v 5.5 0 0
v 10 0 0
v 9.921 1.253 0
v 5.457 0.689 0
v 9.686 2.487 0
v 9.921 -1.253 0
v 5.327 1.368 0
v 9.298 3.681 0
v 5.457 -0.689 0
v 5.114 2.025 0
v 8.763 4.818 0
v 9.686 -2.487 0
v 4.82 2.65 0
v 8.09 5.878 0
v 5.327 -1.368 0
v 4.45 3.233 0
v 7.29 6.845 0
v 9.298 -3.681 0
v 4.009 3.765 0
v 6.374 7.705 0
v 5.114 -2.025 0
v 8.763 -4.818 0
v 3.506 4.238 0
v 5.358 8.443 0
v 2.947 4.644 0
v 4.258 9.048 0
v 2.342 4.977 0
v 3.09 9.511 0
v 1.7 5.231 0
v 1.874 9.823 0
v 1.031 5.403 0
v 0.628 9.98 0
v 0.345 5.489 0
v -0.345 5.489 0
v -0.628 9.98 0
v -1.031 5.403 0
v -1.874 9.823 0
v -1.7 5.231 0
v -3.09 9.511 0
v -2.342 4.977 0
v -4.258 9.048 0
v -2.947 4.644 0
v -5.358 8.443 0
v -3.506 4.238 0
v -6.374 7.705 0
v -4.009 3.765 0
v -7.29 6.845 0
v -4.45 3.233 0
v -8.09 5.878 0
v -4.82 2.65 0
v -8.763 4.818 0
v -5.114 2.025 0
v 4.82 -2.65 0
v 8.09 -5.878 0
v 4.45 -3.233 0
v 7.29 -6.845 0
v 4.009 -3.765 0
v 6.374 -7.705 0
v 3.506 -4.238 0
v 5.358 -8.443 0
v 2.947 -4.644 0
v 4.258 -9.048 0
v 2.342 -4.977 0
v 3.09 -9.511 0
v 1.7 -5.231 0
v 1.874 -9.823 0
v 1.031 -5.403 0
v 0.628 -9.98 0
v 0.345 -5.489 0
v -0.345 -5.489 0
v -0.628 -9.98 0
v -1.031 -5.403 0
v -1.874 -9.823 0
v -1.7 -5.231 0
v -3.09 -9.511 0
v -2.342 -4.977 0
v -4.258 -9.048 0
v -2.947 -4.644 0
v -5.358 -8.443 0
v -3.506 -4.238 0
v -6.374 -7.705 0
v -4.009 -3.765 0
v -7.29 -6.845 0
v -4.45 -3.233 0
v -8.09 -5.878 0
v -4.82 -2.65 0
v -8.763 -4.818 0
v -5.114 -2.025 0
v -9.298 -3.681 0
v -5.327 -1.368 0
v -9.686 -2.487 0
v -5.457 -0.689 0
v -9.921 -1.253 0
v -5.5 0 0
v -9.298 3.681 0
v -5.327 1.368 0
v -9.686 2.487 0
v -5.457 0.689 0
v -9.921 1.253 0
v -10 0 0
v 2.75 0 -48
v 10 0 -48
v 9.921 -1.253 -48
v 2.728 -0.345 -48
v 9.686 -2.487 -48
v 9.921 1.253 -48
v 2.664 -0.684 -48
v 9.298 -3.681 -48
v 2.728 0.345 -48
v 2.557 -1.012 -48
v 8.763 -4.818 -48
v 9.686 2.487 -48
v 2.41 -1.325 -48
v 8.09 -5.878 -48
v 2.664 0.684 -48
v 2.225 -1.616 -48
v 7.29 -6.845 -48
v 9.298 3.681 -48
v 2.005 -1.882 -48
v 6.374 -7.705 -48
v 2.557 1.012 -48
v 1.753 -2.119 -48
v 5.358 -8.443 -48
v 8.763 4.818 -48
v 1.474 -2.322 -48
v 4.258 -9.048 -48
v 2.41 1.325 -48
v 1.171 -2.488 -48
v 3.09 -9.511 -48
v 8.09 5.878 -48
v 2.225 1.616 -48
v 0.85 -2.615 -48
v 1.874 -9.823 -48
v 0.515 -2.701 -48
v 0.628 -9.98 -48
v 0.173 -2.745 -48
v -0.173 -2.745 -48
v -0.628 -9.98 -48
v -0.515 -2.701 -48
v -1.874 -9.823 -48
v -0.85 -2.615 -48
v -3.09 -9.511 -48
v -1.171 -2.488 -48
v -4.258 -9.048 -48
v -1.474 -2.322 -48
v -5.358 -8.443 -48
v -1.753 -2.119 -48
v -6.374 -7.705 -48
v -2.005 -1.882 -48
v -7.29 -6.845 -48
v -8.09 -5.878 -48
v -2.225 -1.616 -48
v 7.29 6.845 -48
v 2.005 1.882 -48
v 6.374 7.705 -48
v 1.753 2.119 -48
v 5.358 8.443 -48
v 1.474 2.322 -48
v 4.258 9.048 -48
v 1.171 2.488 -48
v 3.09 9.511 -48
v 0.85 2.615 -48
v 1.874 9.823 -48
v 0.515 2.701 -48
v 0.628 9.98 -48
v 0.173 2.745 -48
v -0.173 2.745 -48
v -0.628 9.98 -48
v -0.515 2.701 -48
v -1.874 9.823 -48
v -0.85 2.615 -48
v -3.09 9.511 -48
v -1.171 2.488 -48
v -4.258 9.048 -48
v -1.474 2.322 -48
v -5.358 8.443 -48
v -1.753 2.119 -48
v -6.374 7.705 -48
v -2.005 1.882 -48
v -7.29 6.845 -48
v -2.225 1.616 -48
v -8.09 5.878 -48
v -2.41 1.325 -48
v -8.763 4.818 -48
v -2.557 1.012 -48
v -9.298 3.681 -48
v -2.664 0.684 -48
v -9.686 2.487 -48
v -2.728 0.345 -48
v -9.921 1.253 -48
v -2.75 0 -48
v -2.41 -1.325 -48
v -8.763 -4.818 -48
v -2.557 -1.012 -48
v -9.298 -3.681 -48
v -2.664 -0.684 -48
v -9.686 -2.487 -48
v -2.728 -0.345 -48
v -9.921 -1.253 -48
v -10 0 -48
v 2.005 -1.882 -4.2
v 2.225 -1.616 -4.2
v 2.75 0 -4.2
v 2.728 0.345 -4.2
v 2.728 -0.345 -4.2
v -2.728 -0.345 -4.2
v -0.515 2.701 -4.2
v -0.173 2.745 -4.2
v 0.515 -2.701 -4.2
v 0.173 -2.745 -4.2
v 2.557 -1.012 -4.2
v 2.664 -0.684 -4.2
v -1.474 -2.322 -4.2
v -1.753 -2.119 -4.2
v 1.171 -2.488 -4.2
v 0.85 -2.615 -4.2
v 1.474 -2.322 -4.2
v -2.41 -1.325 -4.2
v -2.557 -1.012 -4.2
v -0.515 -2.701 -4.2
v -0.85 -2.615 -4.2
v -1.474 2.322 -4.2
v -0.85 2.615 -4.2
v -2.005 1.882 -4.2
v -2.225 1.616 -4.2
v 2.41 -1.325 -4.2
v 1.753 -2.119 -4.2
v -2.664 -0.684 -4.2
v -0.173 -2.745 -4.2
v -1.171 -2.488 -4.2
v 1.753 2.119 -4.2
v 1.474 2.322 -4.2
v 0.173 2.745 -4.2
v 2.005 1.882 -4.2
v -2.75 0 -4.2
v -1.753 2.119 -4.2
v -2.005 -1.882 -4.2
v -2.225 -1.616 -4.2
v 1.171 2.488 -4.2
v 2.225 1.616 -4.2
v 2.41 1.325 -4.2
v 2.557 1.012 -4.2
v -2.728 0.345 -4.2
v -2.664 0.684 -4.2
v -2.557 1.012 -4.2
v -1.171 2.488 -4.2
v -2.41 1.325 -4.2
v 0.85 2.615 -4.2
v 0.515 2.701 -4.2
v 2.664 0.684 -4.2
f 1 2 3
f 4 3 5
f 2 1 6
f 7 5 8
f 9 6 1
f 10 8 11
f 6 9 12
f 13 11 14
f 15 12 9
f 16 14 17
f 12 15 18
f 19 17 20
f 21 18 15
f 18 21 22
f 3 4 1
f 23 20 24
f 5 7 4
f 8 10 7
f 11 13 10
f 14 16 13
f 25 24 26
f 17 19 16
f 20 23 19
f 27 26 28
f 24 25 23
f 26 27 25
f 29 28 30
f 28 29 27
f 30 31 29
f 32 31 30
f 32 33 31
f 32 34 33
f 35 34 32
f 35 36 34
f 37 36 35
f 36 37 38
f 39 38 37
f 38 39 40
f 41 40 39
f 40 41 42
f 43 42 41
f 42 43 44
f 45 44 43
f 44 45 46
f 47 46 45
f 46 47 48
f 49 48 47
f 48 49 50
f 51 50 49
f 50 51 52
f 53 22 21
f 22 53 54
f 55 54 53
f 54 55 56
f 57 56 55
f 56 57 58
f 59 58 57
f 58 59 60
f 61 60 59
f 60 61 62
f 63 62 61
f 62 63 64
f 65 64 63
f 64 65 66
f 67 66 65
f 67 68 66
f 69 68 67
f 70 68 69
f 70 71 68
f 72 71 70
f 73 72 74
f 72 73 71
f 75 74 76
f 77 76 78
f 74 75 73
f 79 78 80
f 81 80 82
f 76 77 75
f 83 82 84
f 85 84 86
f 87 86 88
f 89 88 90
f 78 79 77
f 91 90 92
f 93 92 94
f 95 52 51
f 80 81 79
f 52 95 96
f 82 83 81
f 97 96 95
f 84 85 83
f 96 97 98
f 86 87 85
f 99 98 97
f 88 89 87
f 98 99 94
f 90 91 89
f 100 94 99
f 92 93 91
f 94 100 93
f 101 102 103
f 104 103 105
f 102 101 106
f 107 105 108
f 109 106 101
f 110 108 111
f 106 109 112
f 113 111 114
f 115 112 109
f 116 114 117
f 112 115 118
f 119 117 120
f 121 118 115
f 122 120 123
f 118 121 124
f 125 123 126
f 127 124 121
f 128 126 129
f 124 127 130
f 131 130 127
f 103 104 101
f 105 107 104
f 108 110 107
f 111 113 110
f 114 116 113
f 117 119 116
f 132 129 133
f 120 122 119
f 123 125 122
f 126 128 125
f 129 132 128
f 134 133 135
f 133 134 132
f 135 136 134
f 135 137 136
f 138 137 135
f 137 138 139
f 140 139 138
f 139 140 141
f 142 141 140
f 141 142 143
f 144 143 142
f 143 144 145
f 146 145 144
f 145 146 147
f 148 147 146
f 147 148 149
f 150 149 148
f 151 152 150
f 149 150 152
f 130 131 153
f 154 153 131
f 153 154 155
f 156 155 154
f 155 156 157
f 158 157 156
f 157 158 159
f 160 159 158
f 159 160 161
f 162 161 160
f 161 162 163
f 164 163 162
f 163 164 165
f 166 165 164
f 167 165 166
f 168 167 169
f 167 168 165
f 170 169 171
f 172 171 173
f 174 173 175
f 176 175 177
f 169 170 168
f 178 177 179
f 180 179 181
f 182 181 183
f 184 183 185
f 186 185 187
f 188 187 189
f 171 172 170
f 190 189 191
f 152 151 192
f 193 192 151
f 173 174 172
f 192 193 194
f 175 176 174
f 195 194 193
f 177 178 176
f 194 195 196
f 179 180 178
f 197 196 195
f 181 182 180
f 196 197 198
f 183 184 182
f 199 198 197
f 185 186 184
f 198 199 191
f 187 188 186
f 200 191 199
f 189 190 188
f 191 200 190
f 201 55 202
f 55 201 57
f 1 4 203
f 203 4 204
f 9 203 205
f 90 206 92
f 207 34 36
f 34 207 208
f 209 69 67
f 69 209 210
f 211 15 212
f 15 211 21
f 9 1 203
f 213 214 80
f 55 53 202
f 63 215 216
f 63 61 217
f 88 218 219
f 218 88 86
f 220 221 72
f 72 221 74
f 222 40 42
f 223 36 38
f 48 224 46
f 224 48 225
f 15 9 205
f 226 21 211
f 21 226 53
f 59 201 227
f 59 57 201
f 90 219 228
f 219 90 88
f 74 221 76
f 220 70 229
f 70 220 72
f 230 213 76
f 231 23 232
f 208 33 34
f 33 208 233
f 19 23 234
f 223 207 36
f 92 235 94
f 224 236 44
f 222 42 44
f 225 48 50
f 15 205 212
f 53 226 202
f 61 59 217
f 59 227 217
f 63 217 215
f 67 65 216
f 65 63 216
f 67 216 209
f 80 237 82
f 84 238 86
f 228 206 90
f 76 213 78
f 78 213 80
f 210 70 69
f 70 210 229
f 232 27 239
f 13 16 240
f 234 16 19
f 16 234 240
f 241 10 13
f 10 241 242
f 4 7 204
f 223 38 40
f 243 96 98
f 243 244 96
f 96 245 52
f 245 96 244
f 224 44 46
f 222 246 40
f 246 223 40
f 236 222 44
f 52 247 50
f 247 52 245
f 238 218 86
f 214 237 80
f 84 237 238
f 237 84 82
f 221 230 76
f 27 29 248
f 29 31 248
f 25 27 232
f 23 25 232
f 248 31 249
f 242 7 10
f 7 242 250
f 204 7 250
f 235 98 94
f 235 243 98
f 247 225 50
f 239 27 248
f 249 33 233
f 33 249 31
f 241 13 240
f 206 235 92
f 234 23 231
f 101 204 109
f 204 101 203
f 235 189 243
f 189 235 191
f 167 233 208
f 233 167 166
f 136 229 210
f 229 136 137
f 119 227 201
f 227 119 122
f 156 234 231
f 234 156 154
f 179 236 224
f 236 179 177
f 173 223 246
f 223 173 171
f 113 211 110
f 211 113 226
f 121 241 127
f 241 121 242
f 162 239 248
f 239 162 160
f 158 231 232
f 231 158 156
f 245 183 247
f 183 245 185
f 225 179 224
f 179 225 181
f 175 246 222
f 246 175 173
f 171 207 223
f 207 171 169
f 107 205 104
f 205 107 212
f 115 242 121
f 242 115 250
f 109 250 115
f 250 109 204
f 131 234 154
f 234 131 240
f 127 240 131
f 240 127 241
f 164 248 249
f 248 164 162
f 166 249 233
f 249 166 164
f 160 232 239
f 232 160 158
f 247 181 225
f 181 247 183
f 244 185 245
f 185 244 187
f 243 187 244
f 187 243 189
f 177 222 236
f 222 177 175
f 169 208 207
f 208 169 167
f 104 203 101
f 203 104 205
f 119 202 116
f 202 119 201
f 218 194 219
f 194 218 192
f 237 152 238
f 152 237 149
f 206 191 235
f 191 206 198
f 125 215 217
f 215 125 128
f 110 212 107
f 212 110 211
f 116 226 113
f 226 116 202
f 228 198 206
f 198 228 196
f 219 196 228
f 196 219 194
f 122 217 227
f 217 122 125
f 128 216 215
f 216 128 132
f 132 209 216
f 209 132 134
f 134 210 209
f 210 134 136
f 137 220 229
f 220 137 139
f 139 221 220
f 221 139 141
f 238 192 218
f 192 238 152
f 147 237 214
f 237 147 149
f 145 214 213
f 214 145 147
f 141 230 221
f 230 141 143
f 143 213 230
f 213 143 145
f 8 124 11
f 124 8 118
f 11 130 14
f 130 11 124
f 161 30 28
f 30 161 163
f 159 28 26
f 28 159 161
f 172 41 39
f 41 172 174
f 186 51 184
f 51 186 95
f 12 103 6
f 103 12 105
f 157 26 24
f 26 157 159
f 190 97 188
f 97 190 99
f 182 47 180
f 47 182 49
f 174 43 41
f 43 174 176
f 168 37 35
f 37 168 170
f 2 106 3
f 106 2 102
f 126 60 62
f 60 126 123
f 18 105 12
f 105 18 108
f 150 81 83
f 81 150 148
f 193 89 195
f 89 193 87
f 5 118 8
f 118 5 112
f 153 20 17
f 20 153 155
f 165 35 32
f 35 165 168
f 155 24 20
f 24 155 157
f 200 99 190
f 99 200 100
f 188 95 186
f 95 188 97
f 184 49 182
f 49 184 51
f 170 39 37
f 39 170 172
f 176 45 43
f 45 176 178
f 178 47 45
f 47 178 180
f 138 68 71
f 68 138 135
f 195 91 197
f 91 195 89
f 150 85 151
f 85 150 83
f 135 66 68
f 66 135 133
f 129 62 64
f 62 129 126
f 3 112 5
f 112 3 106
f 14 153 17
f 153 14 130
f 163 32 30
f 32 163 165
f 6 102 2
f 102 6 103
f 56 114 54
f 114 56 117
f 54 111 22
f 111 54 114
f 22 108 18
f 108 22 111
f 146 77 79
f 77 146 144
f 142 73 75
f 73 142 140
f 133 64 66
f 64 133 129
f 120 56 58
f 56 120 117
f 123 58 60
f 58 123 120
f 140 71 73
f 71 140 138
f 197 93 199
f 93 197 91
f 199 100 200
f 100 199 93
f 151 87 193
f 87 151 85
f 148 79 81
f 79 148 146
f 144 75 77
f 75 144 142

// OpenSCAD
$fn = 50;


difference() {
	union() {
		translate(v = [0, 0, -48.0000000000]) {
			cylinder(h = 48, r = 10.0000000000);
		}
		cylinder(h = 0, r = 20.0000000000);
	}
	union() {
		translate(v = [0, 0, 0]) {
			rotate(a = [0, 0, 0]) {
				difference() {
					union() {
						#translate(v = [0, 0, -48.0000000000]) {
							cylinder(h = 48, r = 2.2500000000);
						}
						#translate(v = [0, 0, -4.2000000000]) {
							cylinder(h = 4.2000000000, r1 = 2.7500000000, r2 = 5.5000000000);
						}
						#translate(v = [0, 0, -48.0000000000]) {
							cylinder(h = 48, r = 2.7500000000);
						}
						#translate(v = [0, 0, -48.0000000000]) {
							cylinder(h = 48, r = 2.2500000000);
						}
					}
					union();
				}
			}
		}
	}
}
